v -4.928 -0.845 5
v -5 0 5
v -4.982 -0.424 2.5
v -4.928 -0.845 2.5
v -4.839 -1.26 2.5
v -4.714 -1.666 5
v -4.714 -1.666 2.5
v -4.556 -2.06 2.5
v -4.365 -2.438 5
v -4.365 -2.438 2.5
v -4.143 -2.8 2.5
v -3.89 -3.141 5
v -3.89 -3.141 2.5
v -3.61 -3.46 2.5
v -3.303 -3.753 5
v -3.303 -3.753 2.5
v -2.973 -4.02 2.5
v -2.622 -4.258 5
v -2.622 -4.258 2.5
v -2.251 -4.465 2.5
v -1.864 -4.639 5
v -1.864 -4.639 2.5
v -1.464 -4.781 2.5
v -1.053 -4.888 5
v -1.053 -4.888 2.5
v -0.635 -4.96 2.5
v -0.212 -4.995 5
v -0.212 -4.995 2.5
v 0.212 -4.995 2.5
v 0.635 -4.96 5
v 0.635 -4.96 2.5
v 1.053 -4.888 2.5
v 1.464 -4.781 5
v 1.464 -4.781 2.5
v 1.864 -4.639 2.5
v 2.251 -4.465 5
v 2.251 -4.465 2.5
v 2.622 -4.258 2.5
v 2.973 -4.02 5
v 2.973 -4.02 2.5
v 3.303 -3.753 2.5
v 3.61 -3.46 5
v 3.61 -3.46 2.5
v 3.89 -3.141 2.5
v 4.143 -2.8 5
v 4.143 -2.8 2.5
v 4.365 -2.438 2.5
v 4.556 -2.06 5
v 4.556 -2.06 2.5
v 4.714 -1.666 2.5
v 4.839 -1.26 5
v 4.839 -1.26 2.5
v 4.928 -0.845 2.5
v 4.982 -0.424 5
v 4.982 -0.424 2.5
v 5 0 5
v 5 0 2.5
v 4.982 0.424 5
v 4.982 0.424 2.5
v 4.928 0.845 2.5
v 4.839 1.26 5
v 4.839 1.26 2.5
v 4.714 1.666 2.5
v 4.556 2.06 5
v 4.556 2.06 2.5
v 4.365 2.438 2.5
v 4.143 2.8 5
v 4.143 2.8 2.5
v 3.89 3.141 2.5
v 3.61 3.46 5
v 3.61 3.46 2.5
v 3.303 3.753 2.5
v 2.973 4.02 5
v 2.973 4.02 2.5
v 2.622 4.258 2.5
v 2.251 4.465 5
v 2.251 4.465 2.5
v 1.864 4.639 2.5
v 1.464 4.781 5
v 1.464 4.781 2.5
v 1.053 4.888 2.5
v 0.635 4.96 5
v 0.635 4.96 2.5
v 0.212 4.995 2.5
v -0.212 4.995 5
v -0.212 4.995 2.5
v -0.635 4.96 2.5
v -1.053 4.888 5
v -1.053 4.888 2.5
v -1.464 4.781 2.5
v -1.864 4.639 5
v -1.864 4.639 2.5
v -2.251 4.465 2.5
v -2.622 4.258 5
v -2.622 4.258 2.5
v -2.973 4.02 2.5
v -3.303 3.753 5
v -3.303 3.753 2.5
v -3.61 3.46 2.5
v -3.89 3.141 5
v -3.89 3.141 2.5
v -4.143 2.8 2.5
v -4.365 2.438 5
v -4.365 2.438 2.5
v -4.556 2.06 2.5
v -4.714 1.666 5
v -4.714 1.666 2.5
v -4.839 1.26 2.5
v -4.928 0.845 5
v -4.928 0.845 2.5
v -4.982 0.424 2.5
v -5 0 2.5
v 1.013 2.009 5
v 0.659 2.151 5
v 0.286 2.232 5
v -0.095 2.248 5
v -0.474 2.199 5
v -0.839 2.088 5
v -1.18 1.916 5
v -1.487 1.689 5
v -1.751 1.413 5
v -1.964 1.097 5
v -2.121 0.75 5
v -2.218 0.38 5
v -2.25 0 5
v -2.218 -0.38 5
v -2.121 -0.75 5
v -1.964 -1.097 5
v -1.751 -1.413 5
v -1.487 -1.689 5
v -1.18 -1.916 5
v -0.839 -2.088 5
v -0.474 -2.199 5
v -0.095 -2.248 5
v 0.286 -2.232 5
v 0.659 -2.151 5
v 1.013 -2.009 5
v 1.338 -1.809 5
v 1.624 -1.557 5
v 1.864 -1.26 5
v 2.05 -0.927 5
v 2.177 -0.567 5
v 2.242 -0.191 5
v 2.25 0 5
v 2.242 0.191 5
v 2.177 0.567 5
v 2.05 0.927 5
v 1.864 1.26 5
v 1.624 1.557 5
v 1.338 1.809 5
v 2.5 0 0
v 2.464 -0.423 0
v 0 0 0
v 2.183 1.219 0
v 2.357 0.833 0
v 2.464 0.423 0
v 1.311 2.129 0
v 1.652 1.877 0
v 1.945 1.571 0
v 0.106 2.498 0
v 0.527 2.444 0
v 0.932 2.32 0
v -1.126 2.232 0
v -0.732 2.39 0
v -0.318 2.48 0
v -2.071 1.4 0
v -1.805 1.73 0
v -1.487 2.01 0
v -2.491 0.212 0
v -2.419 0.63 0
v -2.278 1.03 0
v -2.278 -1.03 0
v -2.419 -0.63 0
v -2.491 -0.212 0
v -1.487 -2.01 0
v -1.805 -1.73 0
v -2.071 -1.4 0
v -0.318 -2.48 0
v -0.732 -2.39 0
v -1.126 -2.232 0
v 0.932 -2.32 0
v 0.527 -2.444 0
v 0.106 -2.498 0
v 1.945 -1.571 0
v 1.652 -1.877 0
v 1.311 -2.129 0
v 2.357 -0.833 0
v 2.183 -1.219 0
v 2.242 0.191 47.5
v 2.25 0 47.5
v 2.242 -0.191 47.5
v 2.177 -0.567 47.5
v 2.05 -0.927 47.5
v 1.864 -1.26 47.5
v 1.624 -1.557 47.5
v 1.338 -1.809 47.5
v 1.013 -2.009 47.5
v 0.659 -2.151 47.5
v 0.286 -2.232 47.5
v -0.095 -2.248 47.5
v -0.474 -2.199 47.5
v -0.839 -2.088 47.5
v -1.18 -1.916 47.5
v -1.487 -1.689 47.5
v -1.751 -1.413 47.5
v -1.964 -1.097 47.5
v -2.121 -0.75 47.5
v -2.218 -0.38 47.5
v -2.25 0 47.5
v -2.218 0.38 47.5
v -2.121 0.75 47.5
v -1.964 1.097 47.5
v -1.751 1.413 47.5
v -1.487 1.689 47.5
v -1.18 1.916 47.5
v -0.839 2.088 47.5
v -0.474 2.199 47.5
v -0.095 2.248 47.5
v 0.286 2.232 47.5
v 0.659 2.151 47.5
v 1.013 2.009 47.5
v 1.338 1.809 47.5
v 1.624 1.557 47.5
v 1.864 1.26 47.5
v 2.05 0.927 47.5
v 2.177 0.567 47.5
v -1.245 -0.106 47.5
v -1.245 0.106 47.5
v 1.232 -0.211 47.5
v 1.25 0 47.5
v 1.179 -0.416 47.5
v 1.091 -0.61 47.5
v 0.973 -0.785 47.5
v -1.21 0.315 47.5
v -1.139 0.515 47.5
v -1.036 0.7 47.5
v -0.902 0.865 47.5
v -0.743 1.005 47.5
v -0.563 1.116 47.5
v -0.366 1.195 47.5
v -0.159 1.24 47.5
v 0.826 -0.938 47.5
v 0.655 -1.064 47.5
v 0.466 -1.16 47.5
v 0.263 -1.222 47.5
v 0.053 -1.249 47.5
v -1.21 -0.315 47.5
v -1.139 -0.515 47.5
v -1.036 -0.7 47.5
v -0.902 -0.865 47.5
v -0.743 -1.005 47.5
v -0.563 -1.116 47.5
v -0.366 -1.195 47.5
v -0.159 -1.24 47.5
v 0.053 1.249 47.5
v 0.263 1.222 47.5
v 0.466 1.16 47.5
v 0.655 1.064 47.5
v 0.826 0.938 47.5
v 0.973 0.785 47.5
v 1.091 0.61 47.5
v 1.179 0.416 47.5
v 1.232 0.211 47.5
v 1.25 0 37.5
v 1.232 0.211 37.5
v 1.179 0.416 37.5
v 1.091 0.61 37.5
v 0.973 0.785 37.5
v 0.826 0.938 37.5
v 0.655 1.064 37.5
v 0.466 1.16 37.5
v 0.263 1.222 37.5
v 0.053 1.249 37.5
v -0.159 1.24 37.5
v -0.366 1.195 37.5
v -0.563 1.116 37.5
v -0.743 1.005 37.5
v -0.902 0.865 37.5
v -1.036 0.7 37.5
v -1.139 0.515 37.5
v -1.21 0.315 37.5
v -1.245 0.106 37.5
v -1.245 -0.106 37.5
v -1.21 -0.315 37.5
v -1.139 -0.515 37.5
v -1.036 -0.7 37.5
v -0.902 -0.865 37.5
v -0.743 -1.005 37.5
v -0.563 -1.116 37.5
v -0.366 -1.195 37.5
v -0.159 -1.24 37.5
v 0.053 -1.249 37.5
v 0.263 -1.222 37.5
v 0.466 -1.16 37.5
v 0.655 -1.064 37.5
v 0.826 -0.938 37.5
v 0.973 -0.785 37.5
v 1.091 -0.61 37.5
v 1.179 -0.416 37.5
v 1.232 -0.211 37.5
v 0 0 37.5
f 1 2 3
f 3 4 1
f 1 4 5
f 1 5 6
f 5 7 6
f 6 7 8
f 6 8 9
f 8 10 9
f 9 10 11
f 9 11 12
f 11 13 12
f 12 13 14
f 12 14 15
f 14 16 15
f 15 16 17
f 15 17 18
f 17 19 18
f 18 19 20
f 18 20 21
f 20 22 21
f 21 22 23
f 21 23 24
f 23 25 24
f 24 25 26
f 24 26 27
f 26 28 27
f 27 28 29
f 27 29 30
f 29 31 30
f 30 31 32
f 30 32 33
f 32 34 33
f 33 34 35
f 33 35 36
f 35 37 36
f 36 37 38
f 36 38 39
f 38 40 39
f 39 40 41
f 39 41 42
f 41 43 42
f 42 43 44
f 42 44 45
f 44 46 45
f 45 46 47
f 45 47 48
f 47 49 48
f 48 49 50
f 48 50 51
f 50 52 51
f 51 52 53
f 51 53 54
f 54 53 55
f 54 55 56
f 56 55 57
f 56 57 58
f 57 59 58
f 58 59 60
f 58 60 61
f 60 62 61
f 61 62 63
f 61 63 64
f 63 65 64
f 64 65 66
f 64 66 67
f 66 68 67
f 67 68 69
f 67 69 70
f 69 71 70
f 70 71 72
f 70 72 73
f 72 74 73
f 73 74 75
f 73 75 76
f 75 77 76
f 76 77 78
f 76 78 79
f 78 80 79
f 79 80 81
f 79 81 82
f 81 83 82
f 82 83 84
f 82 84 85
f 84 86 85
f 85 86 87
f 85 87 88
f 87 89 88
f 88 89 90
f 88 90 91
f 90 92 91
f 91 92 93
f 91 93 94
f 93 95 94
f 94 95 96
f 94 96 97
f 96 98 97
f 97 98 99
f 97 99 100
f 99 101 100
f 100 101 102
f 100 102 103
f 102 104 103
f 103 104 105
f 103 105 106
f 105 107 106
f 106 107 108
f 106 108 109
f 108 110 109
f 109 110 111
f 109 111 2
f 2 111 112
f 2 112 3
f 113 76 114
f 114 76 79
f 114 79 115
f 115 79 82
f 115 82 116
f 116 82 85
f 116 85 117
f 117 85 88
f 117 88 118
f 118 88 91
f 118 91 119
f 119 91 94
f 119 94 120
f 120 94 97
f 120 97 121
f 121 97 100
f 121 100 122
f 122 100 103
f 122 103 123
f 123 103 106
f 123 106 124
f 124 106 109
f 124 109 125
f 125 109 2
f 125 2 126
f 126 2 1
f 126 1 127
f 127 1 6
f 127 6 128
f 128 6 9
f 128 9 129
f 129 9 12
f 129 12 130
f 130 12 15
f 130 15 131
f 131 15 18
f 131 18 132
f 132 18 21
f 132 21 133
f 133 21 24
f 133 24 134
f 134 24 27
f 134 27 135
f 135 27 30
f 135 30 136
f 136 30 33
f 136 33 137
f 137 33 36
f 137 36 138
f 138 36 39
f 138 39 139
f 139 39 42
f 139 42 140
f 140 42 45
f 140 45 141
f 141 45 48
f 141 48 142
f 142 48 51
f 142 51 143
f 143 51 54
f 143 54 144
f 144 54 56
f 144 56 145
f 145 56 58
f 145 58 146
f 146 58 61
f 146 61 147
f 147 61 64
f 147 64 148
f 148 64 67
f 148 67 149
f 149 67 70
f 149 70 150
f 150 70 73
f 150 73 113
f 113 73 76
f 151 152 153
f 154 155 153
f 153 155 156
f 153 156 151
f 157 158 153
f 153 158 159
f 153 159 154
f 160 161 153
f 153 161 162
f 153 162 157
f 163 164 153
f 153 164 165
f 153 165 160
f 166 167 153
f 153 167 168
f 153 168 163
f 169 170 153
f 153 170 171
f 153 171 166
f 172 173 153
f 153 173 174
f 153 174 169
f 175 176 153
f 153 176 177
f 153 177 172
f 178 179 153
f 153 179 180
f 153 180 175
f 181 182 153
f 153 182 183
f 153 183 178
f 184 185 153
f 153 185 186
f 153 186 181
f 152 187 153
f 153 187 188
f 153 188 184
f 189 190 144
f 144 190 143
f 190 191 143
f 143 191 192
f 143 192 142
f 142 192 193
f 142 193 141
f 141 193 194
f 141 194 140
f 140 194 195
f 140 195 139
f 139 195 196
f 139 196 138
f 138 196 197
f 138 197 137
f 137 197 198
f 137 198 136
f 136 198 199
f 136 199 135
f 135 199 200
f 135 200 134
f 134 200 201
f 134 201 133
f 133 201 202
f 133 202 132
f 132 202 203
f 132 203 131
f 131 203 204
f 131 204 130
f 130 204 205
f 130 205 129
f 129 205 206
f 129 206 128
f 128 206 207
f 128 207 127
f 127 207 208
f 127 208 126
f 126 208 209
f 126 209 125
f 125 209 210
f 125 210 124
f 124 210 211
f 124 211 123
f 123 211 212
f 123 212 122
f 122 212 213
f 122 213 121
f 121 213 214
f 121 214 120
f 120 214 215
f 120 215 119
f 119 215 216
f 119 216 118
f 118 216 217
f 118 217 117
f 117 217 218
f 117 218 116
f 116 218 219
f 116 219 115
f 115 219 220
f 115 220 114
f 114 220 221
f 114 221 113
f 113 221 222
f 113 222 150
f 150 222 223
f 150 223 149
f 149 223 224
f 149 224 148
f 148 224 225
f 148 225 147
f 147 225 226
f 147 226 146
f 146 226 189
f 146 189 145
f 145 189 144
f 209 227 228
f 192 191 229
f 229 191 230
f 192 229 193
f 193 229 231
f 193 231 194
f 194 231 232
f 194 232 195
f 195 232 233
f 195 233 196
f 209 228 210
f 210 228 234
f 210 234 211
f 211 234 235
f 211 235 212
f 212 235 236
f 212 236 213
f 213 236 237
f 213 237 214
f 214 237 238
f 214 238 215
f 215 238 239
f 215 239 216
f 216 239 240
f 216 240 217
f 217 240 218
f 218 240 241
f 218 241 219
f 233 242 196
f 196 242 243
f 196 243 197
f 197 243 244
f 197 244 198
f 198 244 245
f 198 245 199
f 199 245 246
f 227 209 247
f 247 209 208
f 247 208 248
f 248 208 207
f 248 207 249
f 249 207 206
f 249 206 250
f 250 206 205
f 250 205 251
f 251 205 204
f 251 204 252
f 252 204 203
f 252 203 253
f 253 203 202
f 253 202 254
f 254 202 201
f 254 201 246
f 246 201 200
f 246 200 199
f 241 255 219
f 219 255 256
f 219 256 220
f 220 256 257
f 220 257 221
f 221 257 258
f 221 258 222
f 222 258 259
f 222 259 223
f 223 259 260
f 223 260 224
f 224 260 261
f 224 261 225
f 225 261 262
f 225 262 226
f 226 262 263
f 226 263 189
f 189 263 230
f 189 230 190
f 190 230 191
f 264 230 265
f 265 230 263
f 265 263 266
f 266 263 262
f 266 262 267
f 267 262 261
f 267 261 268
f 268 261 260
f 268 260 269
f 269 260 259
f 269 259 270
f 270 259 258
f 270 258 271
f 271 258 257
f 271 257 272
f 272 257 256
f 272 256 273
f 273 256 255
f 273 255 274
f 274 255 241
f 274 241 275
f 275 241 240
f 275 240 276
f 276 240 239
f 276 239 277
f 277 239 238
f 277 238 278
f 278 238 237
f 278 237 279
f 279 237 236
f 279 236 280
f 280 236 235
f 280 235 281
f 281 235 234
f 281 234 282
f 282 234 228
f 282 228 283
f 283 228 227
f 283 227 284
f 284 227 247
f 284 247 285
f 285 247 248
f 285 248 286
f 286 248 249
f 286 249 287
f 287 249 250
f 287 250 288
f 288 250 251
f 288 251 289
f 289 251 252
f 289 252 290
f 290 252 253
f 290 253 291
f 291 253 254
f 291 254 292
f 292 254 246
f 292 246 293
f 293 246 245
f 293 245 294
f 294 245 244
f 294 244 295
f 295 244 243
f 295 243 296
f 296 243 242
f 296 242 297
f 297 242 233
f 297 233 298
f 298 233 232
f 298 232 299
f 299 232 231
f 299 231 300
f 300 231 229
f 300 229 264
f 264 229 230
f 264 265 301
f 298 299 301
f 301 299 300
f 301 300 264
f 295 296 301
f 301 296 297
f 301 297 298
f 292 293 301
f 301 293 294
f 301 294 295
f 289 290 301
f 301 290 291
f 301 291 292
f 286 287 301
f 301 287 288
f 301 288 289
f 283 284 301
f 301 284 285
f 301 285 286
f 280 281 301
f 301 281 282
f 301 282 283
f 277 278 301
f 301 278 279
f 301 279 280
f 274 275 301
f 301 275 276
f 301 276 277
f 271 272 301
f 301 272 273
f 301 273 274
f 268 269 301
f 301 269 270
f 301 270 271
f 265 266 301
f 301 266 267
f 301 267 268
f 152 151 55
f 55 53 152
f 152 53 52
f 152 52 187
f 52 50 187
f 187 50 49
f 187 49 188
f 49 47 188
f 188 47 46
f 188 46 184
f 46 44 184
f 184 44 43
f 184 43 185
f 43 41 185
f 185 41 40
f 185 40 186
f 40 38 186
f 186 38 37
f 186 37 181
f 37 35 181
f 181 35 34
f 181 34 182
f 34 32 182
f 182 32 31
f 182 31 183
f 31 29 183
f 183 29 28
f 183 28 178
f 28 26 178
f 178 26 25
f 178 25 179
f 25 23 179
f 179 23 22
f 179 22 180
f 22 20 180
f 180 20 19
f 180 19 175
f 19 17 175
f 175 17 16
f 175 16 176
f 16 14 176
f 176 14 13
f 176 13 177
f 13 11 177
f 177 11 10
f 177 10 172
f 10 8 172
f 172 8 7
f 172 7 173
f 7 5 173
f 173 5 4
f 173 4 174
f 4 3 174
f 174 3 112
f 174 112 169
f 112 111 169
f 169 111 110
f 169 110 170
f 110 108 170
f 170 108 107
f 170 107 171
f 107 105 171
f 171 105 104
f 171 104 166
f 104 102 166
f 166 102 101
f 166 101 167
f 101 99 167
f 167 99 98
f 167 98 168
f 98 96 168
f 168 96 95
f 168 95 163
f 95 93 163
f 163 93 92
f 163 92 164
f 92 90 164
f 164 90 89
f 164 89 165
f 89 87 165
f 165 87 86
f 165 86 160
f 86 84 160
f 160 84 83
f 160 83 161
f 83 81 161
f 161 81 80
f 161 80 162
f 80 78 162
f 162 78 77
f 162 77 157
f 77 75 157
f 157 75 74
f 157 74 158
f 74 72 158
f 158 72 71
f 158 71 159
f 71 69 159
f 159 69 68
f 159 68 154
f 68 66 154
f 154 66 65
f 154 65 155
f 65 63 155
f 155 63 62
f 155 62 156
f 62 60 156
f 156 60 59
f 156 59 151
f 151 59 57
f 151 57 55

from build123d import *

# Parameters (mm, degrees)
SKETCH1_R           = 5
BOSS_EXTRUDE1_DEPTH = 5
SKETCH2_R           = 2.25
BOSS_EXTRUDE2_DEPTH = 42.5
SKETCH3_R           = 1.25
CUT_EXTRUDE1_DEPTH  = 10
CHAMFER1_SIZE       = 2.5


with BuildPart() as part:
    # Sketch1 → Boss-Extrude1 (new body)
    with BuildSketch(Plane.XY):
        Circle(SKETCH1_R)
    extrude(amount=BOSS_EXTRUDE1_DEPTH)

    # Sketch2 → Boss-Extrude2 (add)
    with BuildSketch(Plane.XY.offset(5)):
        Circle(SKETCH2_R)
    extrude(amount=BOSS_EXTRUDE2_DEPTH)

    # Sketch3 → Cut-Extrude1 (cut)
    with BuildSketch(Plane.XY.offset(47.5)):
        Circle(SKETCH3_R)
    extrude(amount=-CUT_EXTRUDE1_DEPTH, mode=Mode.SUBTRACT)

    # Chamfer1
    chamfer1_edges = [part.edges().sort_by_distance(p)[0] for p in [
        (-5, 0, 0),
    ]]
    chamfer(chamfer1_edges, length=CHAMFER1_SIZE)


solid = part.part
